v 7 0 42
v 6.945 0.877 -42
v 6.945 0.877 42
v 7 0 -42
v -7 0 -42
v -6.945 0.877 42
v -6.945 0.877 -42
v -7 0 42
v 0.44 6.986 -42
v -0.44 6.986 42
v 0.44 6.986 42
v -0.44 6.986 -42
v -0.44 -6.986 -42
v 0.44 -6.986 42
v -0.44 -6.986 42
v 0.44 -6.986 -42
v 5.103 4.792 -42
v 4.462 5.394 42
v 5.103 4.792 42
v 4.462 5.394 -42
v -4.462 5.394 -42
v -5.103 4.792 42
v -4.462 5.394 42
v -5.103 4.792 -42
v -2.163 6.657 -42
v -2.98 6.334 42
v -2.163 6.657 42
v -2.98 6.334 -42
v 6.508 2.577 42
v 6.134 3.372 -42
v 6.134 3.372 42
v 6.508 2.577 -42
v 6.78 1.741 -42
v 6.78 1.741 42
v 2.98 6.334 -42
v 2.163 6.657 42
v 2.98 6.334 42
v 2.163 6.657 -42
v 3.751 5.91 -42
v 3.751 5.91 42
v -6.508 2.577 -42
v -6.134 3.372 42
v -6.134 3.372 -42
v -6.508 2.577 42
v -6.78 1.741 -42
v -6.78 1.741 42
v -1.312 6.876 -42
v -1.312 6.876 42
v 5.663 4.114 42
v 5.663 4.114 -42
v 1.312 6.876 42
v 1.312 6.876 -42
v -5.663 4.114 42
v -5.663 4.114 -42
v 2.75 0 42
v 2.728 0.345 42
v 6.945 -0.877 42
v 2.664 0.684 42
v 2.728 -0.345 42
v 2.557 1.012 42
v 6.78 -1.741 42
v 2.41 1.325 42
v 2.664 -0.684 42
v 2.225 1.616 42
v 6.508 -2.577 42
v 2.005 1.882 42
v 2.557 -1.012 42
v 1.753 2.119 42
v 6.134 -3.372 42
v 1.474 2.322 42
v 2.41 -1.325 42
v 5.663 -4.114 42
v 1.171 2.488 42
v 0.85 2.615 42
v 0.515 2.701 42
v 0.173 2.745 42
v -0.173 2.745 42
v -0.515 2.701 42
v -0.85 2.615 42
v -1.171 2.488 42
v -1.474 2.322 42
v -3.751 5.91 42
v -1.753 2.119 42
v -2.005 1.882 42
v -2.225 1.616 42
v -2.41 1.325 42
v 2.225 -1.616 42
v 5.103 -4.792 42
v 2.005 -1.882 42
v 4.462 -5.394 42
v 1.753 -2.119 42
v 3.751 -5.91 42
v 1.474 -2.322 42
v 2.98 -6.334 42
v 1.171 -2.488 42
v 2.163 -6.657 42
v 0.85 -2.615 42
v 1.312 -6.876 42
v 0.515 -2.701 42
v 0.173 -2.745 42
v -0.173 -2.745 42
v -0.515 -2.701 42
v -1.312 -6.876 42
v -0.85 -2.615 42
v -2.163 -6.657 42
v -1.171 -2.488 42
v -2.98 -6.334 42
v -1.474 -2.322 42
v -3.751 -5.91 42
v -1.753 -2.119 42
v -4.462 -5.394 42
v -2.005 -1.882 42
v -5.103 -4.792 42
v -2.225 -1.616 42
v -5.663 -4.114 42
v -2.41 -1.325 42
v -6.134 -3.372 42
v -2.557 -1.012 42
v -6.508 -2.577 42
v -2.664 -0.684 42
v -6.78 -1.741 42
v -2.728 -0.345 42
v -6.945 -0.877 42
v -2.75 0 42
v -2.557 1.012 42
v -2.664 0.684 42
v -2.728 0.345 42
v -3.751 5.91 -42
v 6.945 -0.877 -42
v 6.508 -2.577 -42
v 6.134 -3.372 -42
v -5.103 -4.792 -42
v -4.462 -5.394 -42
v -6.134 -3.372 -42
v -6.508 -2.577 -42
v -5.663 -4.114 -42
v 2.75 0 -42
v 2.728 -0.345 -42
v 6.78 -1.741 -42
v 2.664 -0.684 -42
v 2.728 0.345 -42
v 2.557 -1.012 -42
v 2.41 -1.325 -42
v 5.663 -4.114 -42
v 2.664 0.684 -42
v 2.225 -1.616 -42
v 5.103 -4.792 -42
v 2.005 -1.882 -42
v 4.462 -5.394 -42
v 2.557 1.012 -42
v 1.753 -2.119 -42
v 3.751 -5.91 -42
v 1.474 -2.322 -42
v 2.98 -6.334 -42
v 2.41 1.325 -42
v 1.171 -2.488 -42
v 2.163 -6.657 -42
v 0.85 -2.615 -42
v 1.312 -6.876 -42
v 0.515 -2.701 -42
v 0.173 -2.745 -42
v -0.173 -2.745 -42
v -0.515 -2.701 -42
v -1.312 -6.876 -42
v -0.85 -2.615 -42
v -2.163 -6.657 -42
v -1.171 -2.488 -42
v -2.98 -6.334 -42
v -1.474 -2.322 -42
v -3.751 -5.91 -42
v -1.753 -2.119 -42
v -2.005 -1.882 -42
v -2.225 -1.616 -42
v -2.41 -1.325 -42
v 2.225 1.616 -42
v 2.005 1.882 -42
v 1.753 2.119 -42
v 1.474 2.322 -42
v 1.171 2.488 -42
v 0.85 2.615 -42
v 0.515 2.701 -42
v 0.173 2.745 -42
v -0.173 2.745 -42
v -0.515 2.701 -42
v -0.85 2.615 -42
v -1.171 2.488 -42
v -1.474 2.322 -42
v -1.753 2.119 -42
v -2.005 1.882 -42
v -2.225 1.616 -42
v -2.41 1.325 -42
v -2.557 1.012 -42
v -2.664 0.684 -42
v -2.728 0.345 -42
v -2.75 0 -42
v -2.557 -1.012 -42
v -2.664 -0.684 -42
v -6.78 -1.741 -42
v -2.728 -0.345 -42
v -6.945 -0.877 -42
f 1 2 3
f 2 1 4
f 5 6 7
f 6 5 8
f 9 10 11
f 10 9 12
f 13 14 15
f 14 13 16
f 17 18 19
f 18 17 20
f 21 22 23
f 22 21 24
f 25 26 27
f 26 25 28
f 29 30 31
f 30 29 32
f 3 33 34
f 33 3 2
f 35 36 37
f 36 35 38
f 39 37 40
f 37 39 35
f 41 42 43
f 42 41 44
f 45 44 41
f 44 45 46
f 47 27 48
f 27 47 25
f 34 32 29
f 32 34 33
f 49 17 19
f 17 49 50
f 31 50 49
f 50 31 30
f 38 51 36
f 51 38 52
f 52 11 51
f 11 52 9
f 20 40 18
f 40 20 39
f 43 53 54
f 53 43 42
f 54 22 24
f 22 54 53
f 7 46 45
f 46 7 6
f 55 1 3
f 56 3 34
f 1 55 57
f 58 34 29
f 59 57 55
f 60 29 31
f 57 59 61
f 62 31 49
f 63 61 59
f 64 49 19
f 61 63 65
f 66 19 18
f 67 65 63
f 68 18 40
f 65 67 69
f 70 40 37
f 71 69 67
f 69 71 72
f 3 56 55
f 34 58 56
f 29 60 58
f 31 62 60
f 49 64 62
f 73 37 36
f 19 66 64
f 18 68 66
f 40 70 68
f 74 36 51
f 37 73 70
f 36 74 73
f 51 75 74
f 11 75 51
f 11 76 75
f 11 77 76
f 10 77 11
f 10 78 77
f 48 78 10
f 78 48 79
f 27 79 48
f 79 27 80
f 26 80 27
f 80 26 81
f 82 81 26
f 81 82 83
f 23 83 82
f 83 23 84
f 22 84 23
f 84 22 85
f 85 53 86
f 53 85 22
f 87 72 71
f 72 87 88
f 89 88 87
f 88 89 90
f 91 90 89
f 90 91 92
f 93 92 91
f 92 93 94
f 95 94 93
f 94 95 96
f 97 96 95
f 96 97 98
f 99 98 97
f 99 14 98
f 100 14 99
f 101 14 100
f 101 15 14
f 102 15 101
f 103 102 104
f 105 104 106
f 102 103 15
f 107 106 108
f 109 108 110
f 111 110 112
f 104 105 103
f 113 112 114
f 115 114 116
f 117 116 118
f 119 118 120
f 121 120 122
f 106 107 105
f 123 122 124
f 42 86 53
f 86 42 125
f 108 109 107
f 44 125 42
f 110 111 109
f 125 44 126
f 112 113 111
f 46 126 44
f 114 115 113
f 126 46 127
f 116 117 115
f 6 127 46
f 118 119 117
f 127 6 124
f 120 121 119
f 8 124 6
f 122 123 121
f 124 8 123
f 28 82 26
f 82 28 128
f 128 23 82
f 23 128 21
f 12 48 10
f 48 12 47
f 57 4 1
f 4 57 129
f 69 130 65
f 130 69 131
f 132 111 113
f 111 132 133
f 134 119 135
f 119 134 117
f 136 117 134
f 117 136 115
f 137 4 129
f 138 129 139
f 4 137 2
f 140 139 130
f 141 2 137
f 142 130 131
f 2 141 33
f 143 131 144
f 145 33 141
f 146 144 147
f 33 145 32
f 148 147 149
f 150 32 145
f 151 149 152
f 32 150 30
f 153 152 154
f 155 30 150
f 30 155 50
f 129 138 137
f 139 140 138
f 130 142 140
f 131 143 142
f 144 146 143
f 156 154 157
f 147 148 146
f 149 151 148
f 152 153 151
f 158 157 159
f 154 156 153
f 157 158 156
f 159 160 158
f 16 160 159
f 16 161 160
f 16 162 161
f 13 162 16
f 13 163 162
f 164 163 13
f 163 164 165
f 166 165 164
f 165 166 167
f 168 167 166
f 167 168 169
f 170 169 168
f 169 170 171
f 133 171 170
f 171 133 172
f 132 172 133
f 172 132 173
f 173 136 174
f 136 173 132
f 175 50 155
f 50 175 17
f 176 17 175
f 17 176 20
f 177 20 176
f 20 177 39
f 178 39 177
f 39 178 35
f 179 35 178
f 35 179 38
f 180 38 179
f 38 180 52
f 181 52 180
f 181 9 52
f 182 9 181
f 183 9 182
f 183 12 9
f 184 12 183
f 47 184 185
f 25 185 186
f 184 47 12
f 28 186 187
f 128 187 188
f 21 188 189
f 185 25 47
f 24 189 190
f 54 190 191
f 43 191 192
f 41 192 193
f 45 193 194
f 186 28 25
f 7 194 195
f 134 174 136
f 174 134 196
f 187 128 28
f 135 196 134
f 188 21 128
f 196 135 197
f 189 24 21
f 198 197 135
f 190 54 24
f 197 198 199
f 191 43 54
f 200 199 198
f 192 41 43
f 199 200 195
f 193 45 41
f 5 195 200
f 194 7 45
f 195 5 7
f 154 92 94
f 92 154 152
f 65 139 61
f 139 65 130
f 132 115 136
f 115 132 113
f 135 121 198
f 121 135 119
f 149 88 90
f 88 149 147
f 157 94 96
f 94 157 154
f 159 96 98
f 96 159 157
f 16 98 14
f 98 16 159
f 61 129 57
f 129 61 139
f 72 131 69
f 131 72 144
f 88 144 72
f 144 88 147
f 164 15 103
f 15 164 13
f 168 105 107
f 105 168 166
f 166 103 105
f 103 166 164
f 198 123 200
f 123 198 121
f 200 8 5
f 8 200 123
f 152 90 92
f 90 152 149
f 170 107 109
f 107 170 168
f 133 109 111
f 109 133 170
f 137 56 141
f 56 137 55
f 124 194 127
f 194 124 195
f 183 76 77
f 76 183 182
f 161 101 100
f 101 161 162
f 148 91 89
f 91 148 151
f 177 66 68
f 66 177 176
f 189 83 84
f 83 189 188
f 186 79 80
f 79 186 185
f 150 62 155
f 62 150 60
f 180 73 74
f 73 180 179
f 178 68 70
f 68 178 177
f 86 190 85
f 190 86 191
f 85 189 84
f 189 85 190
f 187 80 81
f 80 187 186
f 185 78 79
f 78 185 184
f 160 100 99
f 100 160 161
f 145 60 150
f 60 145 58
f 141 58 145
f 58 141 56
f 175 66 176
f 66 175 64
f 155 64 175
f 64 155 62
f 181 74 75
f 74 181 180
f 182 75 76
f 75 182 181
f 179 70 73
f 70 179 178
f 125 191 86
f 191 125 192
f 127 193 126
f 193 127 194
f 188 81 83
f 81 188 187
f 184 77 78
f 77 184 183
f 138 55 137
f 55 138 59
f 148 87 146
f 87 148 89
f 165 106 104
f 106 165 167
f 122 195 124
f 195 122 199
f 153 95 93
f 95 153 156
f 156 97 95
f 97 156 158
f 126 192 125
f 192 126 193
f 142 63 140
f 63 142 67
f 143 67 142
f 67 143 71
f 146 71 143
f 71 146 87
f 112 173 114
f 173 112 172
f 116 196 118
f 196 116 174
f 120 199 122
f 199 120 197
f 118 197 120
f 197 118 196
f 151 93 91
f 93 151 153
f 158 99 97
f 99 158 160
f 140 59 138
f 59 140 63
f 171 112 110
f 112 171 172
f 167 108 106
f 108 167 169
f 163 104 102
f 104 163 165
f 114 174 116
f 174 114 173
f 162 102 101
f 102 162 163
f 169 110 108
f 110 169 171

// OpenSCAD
$fn = 50;


difference() {
	union() {
		translate(v = [0, 0, -42.0000000000]) {
			cylinder(h = 84, r = 7.0000000000);
		}
	}
	union() {
		translate(v = [0, 0, -100.0000000000]) {
			cylinder(h = 200, r = 2.7500000000);
		}
	}
}
